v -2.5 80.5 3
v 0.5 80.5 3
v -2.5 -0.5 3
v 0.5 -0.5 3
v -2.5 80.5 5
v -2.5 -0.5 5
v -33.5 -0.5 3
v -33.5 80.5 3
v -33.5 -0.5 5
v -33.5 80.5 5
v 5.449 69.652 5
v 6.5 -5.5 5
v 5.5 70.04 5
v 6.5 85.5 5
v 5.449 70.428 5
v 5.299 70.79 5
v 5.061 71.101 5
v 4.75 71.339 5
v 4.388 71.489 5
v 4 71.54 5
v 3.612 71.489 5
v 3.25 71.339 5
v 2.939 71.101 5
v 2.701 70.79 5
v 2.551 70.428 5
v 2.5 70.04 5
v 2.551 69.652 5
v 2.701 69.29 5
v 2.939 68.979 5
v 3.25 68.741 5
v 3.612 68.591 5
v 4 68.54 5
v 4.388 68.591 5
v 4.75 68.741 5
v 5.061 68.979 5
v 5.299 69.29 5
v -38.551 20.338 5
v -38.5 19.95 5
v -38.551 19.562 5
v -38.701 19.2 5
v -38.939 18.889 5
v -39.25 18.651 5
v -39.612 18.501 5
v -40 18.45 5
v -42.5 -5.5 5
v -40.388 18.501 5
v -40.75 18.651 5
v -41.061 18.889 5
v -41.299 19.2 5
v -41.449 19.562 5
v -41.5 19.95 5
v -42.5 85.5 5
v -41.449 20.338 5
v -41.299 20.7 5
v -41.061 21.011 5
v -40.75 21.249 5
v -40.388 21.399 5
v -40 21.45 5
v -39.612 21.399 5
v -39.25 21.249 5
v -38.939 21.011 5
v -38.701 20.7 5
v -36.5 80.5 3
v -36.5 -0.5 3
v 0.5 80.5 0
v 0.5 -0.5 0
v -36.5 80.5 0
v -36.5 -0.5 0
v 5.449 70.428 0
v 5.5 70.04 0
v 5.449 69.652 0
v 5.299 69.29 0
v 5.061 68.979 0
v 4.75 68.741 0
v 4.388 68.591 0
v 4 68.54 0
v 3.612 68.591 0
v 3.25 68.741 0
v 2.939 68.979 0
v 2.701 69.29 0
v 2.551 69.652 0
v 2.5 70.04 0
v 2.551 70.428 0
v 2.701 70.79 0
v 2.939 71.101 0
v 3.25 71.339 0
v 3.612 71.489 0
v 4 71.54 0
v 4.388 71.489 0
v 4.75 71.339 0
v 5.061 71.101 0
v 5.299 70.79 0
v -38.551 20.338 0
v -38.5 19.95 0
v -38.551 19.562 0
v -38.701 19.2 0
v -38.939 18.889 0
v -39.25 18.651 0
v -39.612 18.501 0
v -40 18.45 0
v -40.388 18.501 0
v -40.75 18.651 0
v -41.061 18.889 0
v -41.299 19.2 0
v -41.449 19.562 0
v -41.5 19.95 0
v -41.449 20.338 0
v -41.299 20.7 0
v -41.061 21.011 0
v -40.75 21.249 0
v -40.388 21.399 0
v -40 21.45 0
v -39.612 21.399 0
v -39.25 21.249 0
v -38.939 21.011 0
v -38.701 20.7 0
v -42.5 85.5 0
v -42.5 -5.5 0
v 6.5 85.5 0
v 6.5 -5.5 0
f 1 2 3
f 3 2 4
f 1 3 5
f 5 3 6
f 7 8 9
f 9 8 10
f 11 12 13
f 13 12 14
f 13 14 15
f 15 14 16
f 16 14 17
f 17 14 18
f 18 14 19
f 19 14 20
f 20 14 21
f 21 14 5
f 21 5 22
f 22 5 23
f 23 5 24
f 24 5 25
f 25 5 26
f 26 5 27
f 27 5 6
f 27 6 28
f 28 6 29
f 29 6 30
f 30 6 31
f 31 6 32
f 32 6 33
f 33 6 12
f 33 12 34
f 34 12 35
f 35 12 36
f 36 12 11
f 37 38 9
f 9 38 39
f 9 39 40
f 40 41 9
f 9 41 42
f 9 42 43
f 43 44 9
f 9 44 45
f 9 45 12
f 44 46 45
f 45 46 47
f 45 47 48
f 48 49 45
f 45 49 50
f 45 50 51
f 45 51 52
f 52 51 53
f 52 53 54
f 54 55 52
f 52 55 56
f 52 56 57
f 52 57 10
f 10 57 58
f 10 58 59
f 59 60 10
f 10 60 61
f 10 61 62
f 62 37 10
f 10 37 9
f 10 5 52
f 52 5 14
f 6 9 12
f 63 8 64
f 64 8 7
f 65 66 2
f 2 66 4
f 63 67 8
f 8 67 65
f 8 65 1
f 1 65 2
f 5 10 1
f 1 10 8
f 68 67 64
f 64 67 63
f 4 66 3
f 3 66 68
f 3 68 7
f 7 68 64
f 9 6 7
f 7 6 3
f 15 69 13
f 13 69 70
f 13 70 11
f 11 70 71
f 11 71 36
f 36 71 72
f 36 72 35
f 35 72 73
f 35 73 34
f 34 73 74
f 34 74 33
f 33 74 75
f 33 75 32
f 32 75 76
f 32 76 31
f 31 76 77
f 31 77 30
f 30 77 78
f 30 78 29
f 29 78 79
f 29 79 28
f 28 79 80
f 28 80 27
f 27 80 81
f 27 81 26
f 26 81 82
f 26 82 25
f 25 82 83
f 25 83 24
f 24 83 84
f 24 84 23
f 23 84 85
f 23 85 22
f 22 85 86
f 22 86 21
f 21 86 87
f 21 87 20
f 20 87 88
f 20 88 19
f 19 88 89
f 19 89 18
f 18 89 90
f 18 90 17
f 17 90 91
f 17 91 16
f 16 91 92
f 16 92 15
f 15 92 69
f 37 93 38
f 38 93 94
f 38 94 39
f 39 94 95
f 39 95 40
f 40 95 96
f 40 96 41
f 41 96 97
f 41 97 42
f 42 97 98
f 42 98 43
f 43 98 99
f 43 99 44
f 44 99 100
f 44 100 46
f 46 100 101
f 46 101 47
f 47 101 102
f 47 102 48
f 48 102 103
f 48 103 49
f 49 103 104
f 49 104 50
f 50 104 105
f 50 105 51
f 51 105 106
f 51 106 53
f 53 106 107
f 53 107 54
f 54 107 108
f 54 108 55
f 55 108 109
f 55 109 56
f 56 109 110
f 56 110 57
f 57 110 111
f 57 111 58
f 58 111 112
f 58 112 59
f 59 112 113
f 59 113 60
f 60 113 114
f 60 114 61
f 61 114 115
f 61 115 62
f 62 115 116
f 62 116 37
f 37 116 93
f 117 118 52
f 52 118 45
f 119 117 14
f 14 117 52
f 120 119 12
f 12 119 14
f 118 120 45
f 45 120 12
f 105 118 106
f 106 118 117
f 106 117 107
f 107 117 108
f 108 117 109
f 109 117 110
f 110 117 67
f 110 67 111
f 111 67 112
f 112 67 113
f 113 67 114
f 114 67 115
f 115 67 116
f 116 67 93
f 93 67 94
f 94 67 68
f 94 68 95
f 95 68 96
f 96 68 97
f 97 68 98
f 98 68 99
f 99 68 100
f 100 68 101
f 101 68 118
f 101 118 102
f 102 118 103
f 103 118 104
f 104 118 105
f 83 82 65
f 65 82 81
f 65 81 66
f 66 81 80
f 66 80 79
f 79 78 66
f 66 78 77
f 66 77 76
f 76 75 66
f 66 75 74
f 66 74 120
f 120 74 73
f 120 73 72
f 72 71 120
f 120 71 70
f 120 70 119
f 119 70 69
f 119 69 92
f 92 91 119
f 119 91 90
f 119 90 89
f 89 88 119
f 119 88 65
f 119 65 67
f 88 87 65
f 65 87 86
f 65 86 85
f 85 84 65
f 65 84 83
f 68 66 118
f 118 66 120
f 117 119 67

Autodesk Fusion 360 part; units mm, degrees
sketch "Esquisse1" plane through (0, 0, 0) normal (0, 0, 1) x (1, 0, 0)
  line L0 (0, 0) -> (-36, 0)
  line L1 (-36, 0) -> (-36, 80)
  line L2 (-36, 80) -> (0, 80)
  line L3 (0, 80) -> (0, 0)
  line L4 (-36.5, 80.5) -> (0.5, 80.5)
  line L5 (0.5, 80.5) -> (0.5, -0.5)
  line L6 (0.5, -0.5) -> (-36.5, -0.5)
  line L7 (-36.5, -0.5) -> (-36.5, 80.5)
  line L8 (-38.5, 82.5) -> (2.5, 82.5)
  line L9 (2.5, 82.5) -> (2.5, -2.5)
  line L10 (2.5, -2.5) -> (-38.5, -2.5)
  line L11 (-38.5, -2.5) -> (-38.5, 82.5)
  circle A0 centre (4, 70.04) radius 1.5
  circle A1 centre (4, 70.04) radius 3
  circle A2 centre (-40, 19.95) radius 1.5
  circle A3 centre (-40, 19.95) radius 3
  line L12 (-42.5, 85.5) -> (6.5, 85.5)
  line L13 (6.5, 85.5) -> (6.5, -5.5)
  line L14 (6.5, -5.5) -> (-42.5, -5.5)
  line L15 (-42.5, -5.5) -> (-42.5, 85.5)
  dimension "d1" = 36
  dimension "d2" = 80
  dimension "d3" = 0.5
  dimension "d4" = 0.5
  dimension "d5" = 0.5
  dimension "d6" = 0.5
  dimension "d7" = 2
  dimension "d8" = 2
  dimension "d9" = 2
  dimension "d10" = 2
  dimension "d11" = 3
  dimension "d12" = 9.96
  dimension "d13" = 4
  dimension "d14" = 6
  dimension "d15" = 3
  dimension "d16" = 4
  dimension "d17" = 6
  dimension "d18" = 19.95
  dimension "d19" = 3
  dimension "d20" = 4
  dimension "d21" = 4
  dimension "d22" = 3
extrude "Extrusion1" add sketch "Esquisse1" along normal blind 3 contours L8 L9 L11 A1 A3 L12 L13 L15 | L8 L9 L10 L11 A1 A3 | L11 A3 | L11 A3 L15 | L9 A1 L13 | L9 A1 | L9 L10 L11 A1 A3 L13 L14 L15
sketch "Esquisse2" plane through (0, 0, 3) normal (0, 0, 1) x (-1, 0, 0)
  circle A0 centre (40, -19.95) radius 1.5
  circle A1 centre (-4, -70.04) radius 1.5
  line L0 (-0.5, 0.5) -> (36.5, 0.5)
  line L1 (36.5, 0.5) -> (36.5, -80.5)
  line L2 (36.5, -80.5) -> (-0.5, -80.5)
  line L3 (-0.5, -80.5) -> (-0.5, 0.5)
  line L4 (42.5, 5.5) -> (-6.5, 5.5)
  line L5 (-6.5, 5.5) -> (-6.5, -85.5)
  line L6 (-6.5, -85.5) -> (42.5, -85.5)
  line L7 (42.5, -85.5) -> (42.5, 5.5)
  line L8 (36.5, -80.5) -> (33.5, -80.5)
  line L9 (33.5, -80.5) -> (33.5, 0.5)
  line L10 (33.5, 0.5) -> (36.5, 0.5)
  line L11 (36.5, 0.5) -> (36.5, -80.5)
  line L12 (-0.5, -80.5) -> (2.5, -80.5)
  line L13 (2.5, -80.5) -> (2.5, 0.5)
  line L14 (2.5, 0.5) -> (-0.5, 0.5)
  line L15 (-0.5, 0.5) -> (-0.5, -80.5)
  dimension "d25" = 3
  dimension "d26" = 3
extrude "Extrusion2" add sketch "Esquisse2" along normal blind 2 contours L0 L2 L3 L12 L13 L14 L15 | L0 L1 L2 L8 L9 L10 L11 | L4 L5 L6 L7
